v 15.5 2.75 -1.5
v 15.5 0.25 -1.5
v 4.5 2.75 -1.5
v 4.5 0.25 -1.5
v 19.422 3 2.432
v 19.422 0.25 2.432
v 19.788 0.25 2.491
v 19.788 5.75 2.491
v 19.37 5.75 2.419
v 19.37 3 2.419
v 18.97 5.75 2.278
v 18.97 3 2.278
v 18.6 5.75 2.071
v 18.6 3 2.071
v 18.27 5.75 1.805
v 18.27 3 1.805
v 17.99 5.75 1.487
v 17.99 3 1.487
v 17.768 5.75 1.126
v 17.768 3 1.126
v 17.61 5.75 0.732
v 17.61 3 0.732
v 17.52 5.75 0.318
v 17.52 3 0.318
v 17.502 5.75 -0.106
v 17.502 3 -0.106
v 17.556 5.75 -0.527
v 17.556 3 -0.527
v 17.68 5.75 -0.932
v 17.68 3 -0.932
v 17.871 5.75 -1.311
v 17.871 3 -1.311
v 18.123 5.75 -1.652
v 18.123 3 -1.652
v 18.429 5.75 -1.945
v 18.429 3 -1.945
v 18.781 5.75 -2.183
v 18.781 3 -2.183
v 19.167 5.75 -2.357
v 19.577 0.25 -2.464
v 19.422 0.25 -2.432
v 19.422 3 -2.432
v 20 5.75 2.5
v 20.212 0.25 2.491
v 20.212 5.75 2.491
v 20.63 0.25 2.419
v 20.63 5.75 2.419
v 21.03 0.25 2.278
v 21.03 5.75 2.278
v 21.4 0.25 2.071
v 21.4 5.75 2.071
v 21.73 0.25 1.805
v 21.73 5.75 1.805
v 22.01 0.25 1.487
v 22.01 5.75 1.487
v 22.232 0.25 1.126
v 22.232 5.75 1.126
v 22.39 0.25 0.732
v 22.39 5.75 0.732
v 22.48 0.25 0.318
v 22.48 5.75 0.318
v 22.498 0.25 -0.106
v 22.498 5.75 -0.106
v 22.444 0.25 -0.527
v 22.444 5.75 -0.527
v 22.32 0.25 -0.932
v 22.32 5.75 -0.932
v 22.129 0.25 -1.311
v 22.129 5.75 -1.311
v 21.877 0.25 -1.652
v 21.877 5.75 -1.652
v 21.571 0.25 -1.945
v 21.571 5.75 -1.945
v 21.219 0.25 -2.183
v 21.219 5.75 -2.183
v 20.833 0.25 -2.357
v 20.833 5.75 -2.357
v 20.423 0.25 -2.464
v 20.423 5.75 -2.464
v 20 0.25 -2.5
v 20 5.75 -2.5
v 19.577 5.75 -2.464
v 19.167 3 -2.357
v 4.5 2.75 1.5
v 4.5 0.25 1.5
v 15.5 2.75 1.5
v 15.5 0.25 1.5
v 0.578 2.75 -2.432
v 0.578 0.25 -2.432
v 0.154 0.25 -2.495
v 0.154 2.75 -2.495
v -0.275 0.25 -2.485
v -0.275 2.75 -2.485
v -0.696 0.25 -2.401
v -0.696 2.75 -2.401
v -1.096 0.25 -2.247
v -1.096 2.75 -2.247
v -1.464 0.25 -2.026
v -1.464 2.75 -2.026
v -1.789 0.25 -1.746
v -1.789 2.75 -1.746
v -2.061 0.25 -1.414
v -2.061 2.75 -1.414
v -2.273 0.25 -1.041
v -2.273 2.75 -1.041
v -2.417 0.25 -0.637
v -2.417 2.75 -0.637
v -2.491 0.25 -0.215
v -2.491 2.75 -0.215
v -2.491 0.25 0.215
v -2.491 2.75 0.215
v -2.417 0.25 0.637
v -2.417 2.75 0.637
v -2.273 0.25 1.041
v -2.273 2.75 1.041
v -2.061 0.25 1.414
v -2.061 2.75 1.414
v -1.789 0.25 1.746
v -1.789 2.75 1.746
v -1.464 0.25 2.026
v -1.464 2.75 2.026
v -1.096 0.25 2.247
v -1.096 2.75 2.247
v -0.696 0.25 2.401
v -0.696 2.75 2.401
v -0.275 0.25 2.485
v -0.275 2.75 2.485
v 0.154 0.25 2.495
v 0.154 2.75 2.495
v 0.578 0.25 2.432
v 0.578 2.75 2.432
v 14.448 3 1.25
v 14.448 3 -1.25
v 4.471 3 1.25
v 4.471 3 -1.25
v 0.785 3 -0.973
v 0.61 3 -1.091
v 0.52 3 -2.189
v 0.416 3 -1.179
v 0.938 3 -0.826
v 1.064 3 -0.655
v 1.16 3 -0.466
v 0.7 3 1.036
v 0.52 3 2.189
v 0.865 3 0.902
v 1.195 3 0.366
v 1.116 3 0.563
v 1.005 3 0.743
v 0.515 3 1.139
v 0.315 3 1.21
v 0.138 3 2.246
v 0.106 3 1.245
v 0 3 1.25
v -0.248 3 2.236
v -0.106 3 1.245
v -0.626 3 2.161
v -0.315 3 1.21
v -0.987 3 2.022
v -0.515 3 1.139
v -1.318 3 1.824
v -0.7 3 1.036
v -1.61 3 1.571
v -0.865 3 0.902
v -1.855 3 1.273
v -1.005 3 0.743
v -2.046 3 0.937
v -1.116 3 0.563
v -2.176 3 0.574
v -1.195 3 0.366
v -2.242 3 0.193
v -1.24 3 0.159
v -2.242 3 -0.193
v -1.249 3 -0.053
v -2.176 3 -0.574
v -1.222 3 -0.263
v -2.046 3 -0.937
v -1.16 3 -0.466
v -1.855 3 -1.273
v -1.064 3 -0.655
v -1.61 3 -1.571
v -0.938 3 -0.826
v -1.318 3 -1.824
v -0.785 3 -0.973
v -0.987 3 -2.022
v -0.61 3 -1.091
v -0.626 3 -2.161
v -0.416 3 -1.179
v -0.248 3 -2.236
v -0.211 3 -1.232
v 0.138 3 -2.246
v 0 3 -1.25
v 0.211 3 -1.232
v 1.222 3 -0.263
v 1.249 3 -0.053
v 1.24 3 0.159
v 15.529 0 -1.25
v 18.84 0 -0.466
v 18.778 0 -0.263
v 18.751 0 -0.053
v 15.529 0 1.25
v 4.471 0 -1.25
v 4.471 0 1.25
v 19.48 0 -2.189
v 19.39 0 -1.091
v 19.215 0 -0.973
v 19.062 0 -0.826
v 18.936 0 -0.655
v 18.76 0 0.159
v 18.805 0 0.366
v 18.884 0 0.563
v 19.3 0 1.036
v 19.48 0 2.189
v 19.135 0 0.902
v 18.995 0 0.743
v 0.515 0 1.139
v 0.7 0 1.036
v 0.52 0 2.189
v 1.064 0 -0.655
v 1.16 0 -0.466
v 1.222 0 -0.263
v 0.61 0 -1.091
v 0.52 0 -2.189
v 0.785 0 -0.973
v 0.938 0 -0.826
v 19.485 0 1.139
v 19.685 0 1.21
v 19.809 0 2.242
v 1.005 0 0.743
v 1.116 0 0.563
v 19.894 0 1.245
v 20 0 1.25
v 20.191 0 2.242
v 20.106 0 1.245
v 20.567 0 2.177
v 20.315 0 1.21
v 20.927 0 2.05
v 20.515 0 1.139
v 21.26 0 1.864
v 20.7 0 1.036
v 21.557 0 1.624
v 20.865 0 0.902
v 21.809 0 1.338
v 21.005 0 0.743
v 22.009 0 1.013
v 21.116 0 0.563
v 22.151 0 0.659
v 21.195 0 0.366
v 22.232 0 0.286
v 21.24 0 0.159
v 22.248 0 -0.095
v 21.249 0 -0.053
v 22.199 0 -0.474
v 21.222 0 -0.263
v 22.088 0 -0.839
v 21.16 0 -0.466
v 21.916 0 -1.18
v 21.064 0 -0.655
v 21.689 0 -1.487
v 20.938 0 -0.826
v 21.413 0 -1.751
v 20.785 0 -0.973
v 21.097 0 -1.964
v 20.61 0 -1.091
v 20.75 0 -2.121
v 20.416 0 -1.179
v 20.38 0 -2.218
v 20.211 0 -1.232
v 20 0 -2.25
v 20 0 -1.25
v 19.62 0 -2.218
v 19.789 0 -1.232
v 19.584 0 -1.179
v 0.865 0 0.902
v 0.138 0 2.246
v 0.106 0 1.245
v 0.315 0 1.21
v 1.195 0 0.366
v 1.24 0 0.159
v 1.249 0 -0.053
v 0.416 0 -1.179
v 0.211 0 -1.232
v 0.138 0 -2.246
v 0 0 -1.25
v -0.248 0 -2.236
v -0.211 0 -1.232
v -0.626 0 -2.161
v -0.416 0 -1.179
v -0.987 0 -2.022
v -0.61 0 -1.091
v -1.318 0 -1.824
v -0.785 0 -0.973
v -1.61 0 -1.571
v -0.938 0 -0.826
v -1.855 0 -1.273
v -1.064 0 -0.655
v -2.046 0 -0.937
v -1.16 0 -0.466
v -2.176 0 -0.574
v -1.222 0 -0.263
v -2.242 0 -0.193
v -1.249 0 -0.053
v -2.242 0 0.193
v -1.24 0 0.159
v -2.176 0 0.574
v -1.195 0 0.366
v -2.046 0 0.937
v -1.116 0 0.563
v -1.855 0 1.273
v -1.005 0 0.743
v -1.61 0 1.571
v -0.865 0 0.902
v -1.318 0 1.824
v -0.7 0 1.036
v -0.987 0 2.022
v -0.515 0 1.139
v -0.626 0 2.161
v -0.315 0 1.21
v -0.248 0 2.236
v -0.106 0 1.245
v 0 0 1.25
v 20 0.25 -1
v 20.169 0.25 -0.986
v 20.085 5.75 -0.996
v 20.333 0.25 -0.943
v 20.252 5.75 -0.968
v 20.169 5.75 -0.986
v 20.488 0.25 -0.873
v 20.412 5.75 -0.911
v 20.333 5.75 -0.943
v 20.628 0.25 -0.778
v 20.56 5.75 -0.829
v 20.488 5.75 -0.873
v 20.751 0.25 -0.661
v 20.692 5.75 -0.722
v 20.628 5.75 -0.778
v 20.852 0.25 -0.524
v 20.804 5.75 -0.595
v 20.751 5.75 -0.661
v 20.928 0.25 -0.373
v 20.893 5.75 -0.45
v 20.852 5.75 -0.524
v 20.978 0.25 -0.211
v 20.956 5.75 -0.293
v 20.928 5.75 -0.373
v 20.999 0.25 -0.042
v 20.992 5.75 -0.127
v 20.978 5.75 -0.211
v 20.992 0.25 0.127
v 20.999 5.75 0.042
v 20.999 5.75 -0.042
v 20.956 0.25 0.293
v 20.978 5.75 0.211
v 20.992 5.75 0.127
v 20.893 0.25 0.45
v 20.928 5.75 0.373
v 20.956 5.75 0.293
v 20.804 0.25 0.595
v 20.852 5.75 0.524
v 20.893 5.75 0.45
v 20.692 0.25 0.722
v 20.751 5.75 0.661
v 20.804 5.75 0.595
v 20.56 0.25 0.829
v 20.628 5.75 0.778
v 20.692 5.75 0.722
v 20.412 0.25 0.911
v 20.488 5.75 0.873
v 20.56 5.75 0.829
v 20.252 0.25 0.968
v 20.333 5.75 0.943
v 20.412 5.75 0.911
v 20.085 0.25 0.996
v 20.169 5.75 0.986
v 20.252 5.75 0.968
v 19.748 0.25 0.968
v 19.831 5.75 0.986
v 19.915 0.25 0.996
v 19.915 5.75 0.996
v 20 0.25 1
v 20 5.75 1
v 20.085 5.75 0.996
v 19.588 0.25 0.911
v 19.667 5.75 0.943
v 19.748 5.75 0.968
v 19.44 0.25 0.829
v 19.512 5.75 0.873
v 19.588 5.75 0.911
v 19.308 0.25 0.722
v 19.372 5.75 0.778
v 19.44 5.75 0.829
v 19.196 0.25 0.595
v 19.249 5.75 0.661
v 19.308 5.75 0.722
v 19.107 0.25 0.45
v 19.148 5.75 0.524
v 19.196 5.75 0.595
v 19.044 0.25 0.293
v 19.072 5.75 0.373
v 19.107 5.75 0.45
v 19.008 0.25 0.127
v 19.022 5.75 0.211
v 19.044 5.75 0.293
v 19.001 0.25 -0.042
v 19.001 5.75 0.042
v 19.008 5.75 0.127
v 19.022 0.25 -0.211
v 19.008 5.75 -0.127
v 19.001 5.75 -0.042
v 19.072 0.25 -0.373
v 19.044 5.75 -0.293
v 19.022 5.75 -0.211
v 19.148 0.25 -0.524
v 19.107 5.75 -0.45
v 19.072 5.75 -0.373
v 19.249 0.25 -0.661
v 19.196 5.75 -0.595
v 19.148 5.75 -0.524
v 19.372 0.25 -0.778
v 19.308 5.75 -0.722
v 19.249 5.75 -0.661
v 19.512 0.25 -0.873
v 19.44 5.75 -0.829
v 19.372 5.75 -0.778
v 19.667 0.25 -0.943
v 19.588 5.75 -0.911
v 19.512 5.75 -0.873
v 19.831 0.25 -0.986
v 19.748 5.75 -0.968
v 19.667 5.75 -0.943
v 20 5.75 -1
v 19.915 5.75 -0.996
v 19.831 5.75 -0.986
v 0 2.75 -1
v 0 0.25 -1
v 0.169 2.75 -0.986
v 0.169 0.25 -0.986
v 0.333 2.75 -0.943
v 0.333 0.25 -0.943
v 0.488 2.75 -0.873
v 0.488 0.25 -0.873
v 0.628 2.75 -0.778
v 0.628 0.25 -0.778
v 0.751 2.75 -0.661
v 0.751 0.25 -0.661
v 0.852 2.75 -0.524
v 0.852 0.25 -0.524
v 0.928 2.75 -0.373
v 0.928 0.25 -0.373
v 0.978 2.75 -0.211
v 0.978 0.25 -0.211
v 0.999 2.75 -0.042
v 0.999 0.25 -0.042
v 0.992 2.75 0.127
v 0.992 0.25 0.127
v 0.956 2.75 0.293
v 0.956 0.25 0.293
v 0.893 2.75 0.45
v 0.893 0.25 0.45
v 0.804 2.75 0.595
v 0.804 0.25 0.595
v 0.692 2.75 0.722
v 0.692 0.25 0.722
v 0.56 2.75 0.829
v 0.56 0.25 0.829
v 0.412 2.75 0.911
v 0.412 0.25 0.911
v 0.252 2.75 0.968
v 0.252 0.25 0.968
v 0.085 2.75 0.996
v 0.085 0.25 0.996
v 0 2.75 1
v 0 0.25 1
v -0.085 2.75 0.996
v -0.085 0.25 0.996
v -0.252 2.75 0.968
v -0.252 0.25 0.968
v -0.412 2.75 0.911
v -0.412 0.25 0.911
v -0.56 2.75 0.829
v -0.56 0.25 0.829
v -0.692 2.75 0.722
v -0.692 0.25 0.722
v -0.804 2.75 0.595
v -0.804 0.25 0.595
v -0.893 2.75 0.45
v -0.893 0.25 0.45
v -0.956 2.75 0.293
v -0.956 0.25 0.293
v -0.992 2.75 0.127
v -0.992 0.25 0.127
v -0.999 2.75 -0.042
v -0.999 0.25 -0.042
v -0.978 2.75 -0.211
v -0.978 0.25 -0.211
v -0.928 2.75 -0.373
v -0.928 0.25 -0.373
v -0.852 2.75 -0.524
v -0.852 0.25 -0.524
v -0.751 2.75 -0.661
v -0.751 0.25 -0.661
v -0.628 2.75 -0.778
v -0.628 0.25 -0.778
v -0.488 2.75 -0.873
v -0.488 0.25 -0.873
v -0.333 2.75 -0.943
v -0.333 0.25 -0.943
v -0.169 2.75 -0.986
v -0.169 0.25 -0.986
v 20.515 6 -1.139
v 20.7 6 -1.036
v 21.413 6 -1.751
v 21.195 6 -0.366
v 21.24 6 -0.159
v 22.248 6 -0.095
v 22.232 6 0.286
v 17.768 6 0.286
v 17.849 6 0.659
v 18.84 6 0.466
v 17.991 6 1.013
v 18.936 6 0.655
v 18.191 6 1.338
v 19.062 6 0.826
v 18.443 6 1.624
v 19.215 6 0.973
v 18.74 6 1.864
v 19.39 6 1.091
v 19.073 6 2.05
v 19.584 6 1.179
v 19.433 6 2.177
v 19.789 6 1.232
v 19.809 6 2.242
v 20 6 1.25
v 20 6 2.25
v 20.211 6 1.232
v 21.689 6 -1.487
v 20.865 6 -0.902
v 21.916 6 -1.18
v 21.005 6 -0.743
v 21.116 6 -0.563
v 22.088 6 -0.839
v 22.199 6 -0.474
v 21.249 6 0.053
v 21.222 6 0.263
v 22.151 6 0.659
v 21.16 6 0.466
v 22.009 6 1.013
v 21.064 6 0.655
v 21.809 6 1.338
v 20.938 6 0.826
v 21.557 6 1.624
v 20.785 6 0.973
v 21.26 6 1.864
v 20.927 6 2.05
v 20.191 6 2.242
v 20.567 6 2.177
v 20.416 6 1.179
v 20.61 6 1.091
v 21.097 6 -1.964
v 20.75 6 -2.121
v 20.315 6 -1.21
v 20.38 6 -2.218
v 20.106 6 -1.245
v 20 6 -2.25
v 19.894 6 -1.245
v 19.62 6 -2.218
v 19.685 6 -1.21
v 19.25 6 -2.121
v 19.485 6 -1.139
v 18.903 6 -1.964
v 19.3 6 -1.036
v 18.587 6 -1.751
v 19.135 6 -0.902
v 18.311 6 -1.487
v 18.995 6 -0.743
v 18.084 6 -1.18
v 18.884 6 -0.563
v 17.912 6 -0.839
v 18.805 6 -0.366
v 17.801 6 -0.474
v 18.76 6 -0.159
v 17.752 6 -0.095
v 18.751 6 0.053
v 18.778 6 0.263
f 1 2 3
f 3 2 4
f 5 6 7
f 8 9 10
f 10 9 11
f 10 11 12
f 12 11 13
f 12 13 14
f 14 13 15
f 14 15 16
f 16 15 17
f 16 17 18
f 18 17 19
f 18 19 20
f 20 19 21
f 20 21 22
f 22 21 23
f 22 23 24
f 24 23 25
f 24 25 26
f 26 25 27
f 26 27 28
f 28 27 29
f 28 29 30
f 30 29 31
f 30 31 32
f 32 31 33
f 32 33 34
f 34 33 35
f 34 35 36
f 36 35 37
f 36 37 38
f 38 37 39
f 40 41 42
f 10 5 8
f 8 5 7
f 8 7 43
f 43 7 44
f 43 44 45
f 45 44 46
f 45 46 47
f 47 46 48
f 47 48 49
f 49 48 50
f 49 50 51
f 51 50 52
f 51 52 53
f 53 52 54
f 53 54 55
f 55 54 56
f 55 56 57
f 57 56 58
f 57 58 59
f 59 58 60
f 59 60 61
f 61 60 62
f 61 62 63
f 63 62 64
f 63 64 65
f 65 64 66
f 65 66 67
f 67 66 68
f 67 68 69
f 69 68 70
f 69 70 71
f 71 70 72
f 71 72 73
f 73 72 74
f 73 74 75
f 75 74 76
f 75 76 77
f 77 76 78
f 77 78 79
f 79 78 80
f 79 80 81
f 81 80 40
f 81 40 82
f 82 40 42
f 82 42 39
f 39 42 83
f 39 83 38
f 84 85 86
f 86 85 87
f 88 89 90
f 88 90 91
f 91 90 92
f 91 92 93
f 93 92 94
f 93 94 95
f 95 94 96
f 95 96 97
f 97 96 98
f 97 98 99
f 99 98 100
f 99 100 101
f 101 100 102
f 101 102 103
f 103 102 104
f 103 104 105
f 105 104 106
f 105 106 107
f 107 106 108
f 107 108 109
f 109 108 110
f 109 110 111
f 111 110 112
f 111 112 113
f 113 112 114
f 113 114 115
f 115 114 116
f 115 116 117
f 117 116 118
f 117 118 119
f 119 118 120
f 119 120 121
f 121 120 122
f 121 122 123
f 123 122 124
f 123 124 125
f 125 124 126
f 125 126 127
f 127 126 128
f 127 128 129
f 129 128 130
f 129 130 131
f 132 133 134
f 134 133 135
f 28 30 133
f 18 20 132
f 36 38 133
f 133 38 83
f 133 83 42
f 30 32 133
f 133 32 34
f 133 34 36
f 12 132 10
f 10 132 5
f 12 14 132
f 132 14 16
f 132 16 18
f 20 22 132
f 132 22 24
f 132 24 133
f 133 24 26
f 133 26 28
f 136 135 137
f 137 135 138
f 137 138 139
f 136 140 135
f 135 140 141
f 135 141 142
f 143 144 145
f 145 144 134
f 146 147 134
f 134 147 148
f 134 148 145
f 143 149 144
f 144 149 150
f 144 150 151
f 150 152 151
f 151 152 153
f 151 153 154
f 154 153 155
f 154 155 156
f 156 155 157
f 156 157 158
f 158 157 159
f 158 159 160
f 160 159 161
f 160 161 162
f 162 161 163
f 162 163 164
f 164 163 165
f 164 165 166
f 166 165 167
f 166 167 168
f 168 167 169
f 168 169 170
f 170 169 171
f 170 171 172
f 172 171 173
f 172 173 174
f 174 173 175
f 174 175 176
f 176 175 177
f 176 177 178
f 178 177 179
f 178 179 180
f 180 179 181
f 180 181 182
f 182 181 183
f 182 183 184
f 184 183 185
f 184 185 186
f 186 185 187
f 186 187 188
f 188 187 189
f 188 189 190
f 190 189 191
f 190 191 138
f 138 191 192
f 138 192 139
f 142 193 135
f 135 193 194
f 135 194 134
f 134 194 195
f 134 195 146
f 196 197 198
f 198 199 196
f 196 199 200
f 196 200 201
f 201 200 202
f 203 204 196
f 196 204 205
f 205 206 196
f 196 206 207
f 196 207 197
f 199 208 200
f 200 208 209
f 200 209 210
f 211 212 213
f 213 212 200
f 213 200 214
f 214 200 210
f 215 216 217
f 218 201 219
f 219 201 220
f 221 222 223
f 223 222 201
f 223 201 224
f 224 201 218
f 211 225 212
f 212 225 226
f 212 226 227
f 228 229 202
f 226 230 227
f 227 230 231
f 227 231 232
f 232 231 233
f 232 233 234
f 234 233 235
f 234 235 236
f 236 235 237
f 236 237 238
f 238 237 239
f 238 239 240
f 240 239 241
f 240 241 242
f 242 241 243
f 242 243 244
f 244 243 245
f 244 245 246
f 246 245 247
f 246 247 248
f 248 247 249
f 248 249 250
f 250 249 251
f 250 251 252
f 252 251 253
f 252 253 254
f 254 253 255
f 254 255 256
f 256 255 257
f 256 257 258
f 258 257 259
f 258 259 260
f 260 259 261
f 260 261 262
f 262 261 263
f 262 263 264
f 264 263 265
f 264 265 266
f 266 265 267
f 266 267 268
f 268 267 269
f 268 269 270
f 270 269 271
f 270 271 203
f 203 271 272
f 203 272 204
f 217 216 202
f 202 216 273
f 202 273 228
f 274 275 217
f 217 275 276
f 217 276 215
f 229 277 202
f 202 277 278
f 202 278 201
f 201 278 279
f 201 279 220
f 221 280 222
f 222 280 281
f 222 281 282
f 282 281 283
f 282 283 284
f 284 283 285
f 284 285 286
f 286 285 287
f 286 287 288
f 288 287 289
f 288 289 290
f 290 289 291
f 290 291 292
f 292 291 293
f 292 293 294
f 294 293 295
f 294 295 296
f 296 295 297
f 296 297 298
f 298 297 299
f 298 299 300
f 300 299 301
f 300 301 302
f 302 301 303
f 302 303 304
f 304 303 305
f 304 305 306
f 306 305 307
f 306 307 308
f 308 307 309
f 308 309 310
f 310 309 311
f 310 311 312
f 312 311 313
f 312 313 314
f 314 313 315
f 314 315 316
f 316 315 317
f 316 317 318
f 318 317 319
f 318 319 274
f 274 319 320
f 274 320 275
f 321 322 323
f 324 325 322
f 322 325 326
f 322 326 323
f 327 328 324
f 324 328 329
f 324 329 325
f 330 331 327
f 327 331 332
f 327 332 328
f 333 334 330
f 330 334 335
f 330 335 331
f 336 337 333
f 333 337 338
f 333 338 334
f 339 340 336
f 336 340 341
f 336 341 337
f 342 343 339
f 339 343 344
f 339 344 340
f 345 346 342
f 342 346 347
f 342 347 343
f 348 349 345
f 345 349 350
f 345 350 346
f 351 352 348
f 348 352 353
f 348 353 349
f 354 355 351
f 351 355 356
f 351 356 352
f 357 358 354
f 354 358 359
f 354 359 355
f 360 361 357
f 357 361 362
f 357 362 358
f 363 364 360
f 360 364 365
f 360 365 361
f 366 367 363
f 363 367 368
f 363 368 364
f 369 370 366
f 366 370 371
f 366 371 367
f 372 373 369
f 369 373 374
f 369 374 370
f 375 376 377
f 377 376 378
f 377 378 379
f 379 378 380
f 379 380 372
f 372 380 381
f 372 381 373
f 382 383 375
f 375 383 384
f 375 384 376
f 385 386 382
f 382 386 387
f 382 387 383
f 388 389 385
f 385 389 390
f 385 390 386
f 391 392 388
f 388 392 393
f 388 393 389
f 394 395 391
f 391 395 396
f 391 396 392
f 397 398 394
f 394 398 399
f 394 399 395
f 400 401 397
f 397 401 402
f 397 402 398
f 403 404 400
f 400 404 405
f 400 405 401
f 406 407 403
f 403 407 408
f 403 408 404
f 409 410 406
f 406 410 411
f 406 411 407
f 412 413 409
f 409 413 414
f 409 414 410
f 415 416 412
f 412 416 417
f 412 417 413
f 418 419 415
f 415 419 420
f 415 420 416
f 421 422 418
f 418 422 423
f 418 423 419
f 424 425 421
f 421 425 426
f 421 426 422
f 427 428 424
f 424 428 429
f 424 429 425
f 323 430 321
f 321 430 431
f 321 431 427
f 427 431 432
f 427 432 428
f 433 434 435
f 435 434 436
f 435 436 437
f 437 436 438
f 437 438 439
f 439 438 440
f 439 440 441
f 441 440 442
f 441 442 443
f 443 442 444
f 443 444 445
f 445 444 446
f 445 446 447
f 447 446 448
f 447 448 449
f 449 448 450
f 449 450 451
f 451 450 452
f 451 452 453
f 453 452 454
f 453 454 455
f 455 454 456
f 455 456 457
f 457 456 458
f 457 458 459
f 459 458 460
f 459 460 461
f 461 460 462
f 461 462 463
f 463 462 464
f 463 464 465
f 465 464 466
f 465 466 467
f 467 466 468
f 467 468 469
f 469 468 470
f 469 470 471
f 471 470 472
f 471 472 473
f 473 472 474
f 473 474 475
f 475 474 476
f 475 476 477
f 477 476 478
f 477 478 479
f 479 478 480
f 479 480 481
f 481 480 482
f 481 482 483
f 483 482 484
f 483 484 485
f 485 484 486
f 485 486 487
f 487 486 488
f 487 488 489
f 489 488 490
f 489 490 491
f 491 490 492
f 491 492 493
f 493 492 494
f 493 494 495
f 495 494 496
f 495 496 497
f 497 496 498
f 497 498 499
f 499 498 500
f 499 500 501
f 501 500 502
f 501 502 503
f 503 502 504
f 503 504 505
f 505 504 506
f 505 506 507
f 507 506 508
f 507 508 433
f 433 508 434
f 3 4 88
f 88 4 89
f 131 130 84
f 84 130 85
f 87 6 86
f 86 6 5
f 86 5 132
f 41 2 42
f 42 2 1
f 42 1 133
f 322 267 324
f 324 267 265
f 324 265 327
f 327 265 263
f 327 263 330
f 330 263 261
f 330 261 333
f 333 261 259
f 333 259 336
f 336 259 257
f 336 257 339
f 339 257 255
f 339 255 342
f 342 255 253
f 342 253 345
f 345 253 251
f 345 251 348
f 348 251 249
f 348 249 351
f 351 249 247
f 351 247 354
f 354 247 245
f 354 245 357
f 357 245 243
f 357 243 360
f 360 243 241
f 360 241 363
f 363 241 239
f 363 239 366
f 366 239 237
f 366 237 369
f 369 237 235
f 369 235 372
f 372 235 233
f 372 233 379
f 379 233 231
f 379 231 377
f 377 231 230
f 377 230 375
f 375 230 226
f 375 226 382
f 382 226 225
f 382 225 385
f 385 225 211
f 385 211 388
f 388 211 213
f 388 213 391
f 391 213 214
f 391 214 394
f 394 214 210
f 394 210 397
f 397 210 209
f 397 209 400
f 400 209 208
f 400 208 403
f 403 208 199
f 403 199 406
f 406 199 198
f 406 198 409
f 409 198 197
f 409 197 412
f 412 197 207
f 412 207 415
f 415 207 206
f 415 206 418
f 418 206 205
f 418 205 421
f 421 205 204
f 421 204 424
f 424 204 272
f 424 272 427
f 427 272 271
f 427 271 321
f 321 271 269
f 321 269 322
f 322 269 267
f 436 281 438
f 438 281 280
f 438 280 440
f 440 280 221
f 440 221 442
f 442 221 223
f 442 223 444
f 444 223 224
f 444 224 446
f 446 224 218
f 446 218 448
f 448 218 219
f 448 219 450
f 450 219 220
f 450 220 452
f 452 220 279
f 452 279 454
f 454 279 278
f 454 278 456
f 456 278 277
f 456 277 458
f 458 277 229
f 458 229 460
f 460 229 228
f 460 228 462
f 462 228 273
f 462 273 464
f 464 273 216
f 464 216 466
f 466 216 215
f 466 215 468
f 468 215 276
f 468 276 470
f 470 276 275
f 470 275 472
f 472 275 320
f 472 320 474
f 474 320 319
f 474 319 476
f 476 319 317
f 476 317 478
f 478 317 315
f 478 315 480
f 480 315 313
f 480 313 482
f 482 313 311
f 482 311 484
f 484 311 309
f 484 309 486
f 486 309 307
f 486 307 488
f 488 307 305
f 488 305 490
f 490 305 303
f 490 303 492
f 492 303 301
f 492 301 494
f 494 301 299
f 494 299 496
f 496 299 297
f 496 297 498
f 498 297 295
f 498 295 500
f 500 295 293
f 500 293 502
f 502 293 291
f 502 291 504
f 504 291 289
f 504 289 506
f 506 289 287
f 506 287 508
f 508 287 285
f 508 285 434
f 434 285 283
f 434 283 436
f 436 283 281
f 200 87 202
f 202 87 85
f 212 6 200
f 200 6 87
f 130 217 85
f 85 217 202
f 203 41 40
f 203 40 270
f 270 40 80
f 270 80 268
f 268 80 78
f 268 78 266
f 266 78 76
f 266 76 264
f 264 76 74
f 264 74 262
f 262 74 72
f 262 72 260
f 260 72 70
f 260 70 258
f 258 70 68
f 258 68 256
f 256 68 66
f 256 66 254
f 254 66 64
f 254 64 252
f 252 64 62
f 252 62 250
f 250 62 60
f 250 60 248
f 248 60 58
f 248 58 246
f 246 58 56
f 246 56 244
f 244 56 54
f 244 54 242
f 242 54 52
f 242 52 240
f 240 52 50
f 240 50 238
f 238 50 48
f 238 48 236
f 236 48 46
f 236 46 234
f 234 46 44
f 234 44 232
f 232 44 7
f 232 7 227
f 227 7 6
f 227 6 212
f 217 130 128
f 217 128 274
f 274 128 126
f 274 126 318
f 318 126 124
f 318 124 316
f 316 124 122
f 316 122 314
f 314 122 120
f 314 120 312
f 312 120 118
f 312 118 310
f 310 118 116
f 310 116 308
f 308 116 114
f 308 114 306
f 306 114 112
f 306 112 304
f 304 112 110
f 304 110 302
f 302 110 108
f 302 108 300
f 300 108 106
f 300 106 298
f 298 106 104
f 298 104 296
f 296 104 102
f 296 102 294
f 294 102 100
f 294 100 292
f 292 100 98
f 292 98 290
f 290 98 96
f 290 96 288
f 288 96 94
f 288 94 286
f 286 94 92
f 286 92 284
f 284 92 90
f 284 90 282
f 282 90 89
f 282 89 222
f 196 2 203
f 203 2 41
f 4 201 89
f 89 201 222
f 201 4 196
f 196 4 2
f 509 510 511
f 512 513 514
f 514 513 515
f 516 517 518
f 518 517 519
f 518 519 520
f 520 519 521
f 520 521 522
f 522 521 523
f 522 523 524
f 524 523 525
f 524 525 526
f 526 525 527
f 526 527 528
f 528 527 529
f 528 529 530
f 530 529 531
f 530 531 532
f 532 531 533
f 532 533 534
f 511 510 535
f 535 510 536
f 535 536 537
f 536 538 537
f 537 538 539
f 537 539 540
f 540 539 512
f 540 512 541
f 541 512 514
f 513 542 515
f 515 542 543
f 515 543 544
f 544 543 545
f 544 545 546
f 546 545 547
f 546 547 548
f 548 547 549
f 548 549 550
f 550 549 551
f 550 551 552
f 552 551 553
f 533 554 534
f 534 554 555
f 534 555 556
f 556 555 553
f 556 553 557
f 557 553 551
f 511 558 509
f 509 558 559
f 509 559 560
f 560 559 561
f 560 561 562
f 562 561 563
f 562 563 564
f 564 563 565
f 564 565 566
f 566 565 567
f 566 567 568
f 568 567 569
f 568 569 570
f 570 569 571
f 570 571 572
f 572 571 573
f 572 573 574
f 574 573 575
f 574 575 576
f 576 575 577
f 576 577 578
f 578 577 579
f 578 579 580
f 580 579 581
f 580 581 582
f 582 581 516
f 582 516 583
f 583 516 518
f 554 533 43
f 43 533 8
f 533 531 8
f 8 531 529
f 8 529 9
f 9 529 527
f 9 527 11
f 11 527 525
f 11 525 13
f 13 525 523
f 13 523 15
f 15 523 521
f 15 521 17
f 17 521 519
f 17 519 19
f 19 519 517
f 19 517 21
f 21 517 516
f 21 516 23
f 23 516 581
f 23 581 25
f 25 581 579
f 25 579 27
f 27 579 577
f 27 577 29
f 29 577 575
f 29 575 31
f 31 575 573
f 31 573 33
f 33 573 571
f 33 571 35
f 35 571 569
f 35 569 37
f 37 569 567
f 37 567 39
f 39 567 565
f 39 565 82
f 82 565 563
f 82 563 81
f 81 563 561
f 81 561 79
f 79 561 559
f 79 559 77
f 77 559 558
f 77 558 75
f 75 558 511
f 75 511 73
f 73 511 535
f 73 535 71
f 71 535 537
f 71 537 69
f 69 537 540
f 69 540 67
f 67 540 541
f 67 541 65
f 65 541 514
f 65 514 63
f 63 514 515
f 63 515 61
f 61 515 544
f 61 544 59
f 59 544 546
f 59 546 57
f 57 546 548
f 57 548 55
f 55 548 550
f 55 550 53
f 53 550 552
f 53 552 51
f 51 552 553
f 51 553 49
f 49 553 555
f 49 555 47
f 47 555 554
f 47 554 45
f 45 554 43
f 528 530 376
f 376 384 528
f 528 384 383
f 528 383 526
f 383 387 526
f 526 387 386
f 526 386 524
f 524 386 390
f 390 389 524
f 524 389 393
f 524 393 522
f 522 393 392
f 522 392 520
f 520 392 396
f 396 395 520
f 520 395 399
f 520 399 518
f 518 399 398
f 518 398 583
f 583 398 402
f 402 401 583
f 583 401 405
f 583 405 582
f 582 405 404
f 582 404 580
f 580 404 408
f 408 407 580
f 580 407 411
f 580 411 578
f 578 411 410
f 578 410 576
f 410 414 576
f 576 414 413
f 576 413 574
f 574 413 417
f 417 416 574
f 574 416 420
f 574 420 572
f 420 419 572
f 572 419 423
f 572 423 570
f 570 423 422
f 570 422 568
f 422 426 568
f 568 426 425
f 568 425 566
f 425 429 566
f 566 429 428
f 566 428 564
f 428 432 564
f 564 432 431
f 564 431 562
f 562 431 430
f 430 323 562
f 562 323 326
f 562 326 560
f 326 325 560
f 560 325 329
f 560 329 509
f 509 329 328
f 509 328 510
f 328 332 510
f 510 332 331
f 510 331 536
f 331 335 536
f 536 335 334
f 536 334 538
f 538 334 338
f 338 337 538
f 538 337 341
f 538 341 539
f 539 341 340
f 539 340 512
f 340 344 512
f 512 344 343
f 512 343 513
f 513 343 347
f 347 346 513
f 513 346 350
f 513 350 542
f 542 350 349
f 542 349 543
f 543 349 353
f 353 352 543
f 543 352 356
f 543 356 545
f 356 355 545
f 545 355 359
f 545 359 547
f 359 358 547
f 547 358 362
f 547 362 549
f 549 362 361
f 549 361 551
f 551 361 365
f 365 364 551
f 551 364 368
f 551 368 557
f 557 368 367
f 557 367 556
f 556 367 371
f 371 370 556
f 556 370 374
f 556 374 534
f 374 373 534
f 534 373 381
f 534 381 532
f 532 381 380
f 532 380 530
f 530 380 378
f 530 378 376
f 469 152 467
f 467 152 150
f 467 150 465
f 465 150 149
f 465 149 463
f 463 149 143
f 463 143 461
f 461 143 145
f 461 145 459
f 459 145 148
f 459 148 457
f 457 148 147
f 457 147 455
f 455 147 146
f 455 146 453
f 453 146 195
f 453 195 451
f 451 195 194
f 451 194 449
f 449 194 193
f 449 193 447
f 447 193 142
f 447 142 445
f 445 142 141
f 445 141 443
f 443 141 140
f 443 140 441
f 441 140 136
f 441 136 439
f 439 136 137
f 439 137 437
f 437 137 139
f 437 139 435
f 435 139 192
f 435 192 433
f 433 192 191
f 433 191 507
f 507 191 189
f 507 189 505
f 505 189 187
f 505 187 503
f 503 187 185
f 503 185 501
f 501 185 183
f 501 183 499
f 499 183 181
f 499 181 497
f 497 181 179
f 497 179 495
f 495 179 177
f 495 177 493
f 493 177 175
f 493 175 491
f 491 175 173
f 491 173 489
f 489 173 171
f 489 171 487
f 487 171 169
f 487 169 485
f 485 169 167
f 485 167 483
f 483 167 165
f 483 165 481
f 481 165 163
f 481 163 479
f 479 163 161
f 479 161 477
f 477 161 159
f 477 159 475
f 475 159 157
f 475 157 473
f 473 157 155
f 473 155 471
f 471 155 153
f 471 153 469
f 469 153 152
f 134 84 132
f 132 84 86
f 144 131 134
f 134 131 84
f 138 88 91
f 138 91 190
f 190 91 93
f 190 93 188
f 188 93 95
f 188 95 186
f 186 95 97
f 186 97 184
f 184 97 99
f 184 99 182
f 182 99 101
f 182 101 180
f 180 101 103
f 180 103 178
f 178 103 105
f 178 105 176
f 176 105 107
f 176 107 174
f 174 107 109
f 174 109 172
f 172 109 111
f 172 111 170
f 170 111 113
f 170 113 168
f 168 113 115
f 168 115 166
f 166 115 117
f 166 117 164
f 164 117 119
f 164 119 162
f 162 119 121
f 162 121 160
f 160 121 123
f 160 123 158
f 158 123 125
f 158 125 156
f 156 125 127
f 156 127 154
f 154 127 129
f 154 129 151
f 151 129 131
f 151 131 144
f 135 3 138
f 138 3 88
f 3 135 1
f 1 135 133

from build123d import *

# Parameters (mm, degrees)
EXTRUDE_1_DEPTH     = 3
SKETCH_2_R          = 1
CUT_EXTRUDE_1_DEPTH = 3
EXTRUDE_2_DEPTH     = 3
CHAMFER_1_SIZE      = 0.25
EXTRUDE_START       = 3
SKETCH_4_R          = 2.5
SKETCH_4_R_2        = 1
EXTRUDE_3_DEPTH     = 3
CHAMFER_3_SIZE      = 0.25


with BuildPart() as part:
    # 草图1 → 凸台-拉伸1 (new body)
    with BuildSketch(Plane(origin=(0, 0, 0), x_dir=(1, 0, 0), z_dir=(0, 1, 0))):
        with BuildLine():
            Line((2, 1.5), (18, 1.5))
            ThreePointArc((18, 1.5), (22.5, 0), (18, -1.5))
            Line((18, -1.5), (2, -1.5))
            ThreePointArc((2, -1.5), (-2.5, 0), (2, 1.5))
        make_face()
    extrude(amount=EXTRUDE_1_DEPTH)

    # 草图2 → 切除-拉伸1 (cut)
    with BuildSketch(Plane(origin=(0, 0, 0), x_dir=(1, 0, 0), z_dir=(0, 1, 0))):
        with Locations(Location((0, 0, 0), (0, 0, 270))):
            Circle(SKETCH_2_R)
        with Locations(Location((20, 0, 0), (0, 0, 270))):
            Circle(SKETCH_2_R)
    extrude(amount=CUT_EXTRUDE_1_DEPTH, mode=Mode.SUBTRACT)

    # 草图3 → 凸台-拉伸2 (add)
    with BuildSketch(Plane(origin=(0, 0, 0), x_dir=(1, 0, 0), z_dir=(0, 1, 0))):
        with BuildLine():
            Line((4.5, 1.5), (0.578145188, 2.432231104))
            ThreePointArc((0.578145188, 2.432231104), (1.370755945, 2.090700395), (2, 1.5))
            Line((2, 1.5), (4.5, 1.5))
        make_face()
        with BuildLine():
            Line((4.5, -1.5), (0.578145188, -2.432231104))
            ThreePointArc((0.578145188, -2.432231104), (1.370755945, -2.090700395), (2, -1.5))
            Line((2, -1.5), (4.5, -1.5))
        make_face()
        with BuildLine():
            Line((18, 1.5), (15.5, 1.5))
            Line((15.5, 1.5), (19.421854812, 2.432231104))
            ThreePointArc((19.421854812, 2.432231104), (18.629244055, 2.090700395), (18, 1.5))
        make_face()
        with BuildLine():
            Line((15.5, -1.5), (19.421854812, -2.432231104))
            ThreePointArc((19.421854812, -2.432231104), (18.629244055, -2.090700395), (18, -1.5))
            Line((18, -1.5), (15.5, -1.5))
        make_face()
    extrude(amount=EXTRUDE_2_DEPTH)

    # 倒角1
    chamfer_1_edges = [part.edges().sort_by_distance(p)[0] for p in [
        (0, 0, -1),
        (20, 0, -1),
        (-2.5, 0, 0),
        (2.539072594, 0, -1.966115552),
        (10, 0, 1.5),
        (2.539072594, 0, 1.966115552),
        (22.5, 0, 0),
        (17.460927406, 0, 1.966115552),
        (10, 0, -1.5),
        (17.460927406, 0, -1.966115552),
    ]]
    chamfer(chamfer_1_edges, length=CHAMFER_1_SIZE)

    # 草图4 → 凸台-拉伸3 (add)
    with BuildSketch(Plane(origin=(0, 0, 0), x_dir=(1, 0, 0), z_dir=(0, 1, 0)).offset(EXTRUDE_START)):
        with Locations(Location((20, 0, 0), (0, 0, 103.371151196))):
            Circle(SKETCH_4_R)
        with Locations(Location((20, 0, 0), (0, 0, 270))):
            Circle(SKETCH_4_R_2, mode=Mode.SUBTRACT)
    extrude(amount=EXTRUDE_3_DEPTH)

    # 倒角3
    chamfer_3_edges = [part.edges().sort_by_distance(p)[0] for p in [
        (0, 3, -1),
        (-2.5, 3, 0),
        (2.539072594, 3, -1.966115552),
        (10, 3, 1.5),
        (2.539072594, 3, 1.966115552),
        (10, 3, -1.5),
        (20.578145188, 6, 2.432231104),
        (20, 6, -1),
    ]]
    chamfer(chamfer_3_edges, length=CHAMFER_3_SIZE)


solid = part.part
